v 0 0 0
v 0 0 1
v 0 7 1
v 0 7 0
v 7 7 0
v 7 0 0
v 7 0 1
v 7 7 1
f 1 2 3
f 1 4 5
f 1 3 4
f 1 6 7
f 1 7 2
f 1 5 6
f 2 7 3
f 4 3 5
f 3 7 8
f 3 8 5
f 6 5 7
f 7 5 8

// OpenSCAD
/* Warning, this is a very basic generator with a lot of approximation 
input data : [VQFN, PSA, 7x7x1.0mm, 48, , C, C04-01124C]
generated by com.zoubworld.electronics.cad.model3d.Basic
Date : Sun Feb 15 10:50:49 CET 2026
*/

//body
color("black")
translate([0,0,0])
cube([7.0,7.0,1.0], center=false);
